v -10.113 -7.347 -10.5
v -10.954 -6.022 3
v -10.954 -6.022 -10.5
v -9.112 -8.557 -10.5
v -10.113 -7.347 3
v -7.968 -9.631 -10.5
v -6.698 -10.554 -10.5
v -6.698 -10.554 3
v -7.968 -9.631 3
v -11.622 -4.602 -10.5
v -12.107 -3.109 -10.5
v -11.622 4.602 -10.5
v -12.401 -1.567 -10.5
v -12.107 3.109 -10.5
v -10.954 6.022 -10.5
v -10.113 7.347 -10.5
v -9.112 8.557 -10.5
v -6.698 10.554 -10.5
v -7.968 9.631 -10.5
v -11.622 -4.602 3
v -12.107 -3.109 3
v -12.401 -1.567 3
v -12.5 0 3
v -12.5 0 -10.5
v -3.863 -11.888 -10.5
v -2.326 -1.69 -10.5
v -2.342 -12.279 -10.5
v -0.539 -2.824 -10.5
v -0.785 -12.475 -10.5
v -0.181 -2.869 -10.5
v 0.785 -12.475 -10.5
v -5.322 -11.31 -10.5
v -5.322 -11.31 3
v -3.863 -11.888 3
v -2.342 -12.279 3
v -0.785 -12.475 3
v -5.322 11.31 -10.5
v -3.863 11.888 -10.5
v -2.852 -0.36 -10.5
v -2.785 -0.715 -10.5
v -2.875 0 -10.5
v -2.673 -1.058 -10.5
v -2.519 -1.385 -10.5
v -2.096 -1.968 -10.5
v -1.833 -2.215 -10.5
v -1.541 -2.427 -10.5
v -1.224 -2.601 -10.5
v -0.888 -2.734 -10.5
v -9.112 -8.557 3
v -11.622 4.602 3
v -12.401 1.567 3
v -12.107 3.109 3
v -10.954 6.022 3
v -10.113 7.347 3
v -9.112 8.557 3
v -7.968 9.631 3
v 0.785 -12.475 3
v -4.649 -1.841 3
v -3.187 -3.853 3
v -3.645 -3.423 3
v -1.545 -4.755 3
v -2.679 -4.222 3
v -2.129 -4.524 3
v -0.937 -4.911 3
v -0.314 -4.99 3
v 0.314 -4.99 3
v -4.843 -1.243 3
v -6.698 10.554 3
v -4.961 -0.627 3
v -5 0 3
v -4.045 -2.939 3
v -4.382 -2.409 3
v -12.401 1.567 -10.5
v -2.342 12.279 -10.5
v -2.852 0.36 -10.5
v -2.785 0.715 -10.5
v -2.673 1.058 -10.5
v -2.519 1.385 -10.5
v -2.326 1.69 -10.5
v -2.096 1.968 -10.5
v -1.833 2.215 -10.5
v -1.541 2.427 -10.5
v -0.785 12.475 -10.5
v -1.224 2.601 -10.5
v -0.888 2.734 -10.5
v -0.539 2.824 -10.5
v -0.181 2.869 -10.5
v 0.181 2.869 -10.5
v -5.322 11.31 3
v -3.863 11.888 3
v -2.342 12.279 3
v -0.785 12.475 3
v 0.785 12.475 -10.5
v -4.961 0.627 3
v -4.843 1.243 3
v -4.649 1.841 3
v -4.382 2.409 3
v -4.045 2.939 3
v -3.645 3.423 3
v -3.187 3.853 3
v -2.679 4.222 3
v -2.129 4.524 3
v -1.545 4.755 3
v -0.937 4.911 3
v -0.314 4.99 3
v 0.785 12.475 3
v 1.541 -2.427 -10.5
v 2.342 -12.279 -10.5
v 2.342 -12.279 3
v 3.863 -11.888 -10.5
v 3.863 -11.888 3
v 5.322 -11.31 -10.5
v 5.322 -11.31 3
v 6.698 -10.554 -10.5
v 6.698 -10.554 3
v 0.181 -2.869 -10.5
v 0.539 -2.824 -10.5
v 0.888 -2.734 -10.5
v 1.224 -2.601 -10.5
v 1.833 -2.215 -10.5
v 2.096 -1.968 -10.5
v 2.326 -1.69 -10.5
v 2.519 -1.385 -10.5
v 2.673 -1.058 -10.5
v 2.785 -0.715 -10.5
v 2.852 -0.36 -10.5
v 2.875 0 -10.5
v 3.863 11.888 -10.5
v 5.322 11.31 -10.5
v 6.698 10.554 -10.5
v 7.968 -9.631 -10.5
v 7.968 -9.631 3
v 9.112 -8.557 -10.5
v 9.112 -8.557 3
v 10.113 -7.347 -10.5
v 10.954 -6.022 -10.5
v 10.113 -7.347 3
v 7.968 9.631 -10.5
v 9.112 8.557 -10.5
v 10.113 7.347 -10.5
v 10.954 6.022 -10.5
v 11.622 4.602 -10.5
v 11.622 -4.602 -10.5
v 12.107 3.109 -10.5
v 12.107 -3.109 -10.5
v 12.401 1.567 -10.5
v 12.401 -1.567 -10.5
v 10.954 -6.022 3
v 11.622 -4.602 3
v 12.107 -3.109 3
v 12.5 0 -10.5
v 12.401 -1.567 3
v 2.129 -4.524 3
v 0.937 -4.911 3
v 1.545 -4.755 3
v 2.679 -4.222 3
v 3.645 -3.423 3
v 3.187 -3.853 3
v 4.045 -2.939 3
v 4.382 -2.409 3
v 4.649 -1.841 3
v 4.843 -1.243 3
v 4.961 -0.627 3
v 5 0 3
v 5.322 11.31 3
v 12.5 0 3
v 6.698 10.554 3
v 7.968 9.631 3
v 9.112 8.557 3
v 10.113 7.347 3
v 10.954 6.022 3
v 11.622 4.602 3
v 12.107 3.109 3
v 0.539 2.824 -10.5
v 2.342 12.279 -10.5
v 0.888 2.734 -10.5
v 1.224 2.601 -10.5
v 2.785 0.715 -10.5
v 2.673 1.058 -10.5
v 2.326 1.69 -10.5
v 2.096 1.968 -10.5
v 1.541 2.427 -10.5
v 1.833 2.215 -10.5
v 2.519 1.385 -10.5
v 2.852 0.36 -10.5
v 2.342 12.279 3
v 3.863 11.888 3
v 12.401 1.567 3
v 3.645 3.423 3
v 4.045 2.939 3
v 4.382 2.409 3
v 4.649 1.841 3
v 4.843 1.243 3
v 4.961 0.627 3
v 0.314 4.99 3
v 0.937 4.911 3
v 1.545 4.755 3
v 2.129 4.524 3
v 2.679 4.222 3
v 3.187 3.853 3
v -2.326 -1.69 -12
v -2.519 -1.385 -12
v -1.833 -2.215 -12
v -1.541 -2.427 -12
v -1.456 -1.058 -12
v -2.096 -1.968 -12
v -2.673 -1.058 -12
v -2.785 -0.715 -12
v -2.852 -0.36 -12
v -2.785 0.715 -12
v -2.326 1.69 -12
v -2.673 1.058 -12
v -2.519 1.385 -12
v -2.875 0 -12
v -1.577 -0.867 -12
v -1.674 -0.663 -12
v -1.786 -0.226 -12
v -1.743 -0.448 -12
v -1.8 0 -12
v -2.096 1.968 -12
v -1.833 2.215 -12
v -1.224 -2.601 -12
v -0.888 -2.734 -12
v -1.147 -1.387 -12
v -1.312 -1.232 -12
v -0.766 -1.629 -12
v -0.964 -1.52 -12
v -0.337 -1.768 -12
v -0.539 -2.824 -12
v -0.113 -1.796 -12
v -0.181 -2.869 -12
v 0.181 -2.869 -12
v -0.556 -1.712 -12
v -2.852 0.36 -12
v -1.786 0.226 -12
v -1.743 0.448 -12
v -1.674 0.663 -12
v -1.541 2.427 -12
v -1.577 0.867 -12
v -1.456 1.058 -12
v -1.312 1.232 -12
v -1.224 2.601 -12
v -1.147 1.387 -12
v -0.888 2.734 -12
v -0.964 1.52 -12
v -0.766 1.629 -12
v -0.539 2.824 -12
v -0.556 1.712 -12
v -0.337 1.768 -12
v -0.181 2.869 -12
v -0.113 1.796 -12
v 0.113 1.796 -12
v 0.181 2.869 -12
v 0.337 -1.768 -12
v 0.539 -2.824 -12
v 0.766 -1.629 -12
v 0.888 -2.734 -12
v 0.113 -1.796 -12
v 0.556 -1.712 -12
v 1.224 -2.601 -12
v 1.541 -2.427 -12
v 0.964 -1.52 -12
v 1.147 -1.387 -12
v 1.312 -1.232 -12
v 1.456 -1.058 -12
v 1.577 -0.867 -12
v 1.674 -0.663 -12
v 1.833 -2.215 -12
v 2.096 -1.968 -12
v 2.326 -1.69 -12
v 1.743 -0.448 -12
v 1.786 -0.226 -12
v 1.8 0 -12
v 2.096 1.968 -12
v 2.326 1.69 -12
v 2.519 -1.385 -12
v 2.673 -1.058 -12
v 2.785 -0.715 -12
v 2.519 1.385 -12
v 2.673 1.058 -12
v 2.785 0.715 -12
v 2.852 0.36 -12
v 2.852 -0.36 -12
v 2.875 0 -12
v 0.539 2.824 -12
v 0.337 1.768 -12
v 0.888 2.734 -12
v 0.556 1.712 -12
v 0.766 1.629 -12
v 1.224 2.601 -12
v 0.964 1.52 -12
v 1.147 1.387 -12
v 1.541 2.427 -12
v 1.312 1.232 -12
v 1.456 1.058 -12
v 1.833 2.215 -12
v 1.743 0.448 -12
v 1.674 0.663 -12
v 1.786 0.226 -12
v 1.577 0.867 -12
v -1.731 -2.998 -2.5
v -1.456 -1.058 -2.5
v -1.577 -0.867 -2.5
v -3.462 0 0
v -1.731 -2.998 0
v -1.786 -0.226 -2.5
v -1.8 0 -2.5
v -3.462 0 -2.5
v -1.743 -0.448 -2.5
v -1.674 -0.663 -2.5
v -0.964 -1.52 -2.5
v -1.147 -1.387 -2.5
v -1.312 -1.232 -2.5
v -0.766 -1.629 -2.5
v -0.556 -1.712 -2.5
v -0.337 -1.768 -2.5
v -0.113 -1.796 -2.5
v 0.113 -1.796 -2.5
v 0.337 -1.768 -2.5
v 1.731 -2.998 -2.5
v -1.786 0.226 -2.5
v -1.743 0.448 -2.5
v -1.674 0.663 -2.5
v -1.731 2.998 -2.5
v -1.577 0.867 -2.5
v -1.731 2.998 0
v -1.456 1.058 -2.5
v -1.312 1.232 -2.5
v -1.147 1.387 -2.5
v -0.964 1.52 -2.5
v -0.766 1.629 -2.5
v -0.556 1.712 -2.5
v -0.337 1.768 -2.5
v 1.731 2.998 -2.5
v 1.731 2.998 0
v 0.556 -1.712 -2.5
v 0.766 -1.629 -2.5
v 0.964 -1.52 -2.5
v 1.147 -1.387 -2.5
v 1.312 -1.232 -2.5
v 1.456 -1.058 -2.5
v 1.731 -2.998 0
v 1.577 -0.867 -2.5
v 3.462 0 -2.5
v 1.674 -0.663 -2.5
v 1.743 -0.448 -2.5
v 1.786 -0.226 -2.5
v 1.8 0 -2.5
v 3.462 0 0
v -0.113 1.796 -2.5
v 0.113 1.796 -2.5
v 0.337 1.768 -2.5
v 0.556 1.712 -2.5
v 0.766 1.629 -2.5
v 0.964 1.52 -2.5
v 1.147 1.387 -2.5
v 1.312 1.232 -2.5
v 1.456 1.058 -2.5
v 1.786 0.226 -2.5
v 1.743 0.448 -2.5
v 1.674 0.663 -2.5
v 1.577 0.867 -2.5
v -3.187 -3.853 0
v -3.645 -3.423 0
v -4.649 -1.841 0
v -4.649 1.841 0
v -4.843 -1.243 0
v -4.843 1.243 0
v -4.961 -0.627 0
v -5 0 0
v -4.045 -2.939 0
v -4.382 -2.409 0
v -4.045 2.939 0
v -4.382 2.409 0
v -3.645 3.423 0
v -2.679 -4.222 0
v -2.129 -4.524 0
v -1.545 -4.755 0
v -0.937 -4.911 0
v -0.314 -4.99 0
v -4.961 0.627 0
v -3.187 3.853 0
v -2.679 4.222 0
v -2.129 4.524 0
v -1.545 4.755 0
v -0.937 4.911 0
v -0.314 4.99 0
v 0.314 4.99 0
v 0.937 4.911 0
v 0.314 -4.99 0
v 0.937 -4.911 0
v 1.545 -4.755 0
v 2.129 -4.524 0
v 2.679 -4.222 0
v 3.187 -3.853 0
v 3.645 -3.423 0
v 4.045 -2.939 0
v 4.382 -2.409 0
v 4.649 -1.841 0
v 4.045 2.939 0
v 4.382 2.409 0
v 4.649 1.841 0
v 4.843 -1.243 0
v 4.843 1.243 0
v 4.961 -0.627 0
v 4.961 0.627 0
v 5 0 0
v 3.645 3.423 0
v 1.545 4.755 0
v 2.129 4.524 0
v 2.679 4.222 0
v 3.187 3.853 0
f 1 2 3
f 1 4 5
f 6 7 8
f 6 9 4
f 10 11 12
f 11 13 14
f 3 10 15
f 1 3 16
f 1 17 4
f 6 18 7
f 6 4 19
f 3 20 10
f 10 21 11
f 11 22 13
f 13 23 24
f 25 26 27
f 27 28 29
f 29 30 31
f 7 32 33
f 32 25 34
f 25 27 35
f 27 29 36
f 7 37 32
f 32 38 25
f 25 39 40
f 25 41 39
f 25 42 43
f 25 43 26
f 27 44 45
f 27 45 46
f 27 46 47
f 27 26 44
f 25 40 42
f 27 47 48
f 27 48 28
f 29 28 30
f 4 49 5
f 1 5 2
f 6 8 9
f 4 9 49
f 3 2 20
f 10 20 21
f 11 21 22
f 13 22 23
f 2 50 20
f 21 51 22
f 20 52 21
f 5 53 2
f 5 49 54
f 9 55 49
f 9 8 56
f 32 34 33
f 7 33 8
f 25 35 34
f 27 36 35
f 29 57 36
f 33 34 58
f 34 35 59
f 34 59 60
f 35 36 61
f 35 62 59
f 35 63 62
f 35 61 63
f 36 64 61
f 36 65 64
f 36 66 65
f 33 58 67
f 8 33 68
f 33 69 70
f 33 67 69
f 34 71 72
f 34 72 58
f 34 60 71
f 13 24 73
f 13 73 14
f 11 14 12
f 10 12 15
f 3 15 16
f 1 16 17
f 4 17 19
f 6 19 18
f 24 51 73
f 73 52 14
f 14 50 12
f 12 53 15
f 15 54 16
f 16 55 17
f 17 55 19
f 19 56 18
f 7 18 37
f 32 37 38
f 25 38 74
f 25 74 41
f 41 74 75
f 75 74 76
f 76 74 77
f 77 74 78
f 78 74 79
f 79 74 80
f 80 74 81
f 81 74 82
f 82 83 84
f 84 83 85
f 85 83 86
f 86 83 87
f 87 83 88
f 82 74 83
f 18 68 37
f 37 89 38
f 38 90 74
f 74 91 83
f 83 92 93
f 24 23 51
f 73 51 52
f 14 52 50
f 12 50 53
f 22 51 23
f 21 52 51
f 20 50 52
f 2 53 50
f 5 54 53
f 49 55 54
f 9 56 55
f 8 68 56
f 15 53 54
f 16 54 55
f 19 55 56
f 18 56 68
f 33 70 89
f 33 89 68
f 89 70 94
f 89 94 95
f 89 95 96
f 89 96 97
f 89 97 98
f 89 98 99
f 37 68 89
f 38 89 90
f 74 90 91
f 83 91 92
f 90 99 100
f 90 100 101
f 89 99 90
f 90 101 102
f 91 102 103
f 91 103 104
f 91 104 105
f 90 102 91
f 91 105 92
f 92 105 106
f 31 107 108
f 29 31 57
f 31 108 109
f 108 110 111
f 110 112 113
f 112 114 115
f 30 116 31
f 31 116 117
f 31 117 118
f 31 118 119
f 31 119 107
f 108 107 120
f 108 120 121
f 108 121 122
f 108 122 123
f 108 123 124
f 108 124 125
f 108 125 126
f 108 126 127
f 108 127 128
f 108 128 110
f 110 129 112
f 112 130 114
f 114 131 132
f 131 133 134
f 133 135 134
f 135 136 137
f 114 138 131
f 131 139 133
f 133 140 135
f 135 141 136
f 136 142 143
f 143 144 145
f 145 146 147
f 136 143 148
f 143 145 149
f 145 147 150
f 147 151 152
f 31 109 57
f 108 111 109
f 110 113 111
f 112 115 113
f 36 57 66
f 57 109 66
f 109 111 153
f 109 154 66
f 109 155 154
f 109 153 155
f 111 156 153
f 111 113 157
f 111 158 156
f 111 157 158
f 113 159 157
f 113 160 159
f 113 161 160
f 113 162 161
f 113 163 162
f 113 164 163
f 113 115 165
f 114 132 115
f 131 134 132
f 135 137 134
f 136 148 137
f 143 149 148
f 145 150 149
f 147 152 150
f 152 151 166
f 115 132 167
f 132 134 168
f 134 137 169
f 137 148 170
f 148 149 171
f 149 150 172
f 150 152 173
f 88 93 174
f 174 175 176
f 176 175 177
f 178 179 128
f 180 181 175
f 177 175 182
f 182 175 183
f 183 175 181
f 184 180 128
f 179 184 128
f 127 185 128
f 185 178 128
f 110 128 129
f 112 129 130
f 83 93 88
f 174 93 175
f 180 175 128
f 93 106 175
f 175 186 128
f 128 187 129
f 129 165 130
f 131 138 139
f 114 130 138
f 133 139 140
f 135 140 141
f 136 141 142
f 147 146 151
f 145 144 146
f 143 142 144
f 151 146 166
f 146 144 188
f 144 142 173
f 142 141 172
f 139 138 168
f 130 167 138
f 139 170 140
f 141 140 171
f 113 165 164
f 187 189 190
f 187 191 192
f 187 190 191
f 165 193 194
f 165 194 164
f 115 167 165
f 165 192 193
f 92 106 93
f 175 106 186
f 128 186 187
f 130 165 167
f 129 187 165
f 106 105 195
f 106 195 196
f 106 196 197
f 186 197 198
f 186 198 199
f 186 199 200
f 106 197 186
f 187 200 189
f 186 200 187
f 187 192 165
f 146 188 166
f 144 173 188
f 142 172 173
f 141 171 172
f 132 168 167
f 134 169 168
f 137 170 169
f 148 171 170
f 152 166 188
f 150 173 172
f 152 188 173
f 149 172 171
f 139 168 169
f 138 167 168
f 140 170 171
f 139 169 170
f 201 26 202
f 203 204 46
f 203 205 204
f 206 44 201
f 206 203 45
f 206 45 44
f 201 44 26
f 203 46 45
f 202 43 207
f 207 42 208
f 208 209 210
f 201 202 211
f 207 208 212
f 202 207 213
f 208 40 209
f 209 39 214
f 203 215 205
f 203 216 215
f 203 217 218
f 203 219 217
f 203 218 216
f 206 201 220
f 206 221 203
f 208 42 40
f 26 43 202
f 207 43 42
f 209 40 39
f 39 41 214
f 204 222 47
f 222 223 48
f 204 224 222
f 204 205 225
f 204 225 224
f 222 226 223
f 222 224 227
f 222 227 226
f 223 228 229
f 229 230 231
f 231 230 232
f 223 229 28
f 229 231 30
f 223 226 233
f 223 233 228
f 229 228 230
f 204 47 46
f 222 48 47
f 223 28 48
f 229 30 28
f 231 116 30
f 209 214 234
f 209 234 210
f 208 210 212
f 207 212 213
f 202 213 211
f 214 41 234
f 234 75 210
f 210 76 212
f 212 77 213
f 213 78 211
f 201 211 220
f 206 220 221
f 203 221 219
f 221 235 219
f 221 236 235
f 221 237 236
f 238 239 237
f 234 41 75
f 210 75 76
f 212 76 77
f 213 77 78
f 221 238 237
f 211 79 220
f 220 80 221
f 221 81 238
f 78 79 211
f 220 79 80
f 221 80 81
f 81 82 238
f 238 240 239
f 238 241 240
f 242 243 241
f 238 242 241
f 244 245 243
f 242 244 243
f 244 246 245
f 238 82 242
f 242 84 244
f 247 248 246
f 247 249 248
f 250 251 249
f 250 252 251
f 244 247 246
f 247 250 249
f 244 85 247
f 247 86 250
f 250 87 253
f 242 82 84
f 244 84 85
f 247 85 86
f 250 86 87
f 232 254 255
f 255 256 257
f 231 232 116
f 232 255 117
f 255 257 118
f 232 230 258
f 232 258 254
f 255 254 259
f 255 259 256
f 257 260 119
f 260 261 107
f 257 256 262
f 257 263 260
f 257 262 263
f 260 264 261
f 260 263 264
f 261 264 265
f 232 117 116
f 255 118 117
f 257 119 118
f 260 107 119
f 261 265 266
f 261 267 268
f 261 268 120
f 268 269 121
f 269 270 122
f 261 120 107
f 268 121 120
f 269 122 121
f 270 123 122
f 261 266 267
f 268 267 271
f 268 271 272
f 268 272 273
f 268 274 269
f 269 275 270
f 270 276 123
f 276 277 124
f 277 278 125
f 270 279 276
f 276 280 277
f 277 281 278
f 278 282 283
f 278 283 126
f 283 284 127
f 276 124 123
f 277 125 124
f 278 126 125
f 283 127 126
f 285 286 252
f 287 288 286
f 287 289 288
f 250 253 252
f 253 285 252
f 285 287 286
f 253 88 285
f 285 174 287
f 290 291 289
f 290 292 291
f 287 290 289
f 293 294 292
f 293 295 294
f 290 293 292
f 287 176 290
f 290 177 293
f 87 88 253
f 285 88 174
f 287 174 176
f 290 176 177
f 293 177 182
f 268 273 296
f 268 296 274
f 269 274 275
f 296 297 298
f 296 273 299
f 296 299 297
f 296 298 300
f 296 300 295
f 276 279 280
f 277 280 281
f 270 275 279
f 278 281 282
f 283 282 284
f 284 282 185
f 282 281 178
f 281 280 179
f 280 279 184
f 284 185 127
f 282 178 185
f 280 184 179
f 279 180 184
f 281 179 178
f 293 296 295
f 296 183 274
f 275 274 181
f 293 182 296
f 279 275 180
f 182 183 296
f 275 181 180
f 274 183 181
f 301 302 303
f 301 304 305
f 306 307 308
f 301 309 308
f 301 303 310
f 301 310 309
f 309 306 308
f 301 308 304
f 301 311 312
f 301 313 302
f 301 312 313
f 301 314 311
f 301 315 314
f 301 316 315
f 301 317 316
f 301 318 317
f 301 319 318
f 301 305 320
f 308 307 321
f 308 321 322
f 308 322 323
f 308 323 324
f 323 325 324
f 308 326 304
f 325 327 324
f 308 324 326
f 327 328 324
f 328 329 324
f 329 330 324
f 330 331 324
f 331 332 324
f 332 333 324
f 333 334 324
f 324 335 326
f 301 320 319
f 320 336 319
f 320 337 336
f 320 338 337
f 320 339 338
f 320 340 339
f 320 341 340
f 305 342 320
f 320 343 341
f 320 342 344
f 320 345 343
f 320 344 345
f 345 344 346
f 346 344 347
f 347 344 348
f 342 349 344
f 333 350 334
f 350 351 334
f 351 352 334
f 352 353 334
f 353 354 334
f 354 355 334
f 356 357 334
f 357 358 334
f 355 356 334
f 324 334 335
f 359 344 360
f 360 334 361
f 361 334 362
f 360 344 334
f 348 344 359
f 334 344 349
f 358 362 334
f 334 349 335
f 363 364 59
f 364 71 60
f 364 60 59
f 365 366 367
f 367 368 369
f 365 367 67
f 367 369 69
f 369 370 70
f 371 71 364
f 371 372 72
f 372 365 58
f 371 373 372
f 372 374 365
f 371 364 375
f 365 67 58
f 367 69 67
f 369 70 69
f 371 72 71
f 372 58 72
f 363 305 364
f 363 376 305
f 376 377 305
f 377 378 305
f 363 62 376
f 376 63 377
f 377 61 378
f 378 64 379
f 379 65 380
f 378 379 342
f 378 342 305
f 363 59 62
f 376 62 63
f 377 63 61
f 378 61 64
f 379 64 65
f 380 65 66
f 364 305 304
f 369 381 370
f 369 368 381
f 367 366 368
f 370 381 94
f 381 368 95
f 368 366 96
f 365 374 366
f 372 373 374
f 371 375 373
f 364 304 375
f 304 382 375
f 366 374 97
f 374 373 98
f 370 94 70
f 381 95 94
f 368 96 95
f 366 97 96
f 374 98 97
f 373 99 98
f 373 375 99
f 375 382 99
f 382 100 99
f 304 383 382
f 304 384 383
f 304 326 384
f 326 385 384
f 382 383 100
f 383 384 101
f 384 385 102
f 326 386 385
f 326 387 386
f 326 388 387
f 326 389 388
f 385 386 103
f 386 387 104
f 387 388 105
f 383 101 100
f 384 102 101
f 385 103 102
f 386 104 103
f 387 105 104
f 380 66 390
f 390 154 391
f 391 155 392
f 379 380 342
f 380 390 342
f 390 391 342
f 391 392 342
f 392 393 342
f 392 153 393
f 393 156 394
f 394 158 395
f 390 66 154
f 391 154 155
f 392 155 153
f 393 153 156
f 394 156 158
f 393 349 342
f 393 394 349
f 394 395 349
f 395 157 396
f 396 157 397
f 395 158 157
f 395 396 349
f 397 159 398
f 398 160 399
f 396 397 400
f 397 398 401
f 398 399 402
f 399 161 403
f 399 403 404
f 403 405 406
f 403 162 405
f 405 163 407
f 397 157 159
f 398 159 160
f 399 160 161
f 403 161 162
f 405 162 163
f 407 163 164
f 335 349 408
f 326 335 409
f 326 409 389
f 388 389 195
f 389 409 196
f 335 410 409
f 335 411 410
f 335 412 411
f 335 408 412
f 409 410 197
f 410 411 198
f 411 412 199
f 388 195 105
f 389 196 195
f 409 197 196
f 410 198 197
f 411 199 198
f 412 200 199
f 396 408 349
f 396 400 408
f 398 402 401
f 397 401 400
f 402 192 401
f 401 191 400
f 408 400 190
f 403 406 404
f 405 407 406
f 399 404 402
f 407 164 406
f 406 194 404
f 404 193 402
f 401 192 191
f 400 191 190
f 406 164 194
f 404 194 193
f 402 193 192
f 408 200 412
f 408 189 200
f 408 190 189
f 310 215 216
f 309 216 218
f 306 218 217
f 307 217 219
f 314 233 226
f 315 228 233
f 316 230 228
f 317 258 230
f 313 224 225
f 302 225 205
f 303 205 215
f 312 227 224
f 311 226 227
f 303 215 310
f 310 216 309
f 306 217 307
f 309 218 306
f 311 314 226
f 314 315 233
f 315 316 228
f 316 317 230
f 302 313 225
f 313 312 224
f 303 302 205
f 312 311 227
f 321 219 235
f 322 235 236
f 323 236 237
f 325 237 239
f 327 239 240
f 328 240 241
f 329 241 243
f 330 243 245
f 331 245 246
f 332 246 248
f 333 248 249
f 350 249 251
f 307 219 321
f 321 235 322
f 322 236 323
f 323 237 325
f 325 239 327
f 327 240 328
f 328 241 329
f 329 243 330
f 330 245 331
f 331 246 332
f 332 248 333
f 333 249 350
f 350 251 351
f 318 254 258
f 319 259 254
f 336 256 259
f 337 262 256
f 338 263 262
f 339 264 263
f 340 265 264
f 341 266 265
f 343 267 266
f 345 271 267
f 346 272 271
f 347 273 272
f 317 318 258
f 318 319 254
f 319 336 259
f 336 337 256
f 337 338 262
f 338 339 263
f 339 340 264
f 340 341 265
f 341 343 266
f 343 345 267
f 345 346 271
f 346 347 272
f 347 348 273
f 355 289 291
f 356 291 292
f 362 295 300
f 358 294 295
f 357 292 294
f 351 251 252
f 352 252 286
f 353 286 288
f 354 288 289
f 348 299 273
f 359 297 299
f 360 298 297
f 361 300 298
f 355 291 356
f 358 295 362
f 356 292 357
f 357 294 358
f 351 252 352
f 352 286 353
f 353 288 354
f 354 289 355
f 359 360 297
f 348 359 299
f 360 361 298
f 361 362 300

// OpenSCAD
$fn = 50;


difference() {
	union() {
		translate(v = [0, 0, -10.5000000000]) {
			cylinder(h = 13.5000000000, r = 12.5000000000);
		}
		#translate(v = [0, 0, -12.0000000000]) {
			cylinder(h = 12, r = 2.8750000000);
		}
	}
	union() {
		translate(v = [0, 0, 0]) {
			rotate(a = [0, 0, 0]) {
				difference() {
					union() {
						translate(v = [0, 0, -2.5000000000]) {
							linear_extrude(height = 2.5000000000) {
								polygon(points = [[3.4620000000, 0.0000000000], [1.7310000000, 2.9981799479], [-1.7310000000, 2.9981799479], [-3.4620000000, 0.0000000000], [-1.7310000000, -2.9981799479], [1.7310000000, -2.9981799479]]);
							}
						}
					}
					union();
				}
			}
		}
		#cylinder(h = 3, r = 5.0000000000);
		#translate(v = [0, 0, -100.0000000000]) {
			cylinder(h = 200, r = 1.8000000000);
		}
	}
}
